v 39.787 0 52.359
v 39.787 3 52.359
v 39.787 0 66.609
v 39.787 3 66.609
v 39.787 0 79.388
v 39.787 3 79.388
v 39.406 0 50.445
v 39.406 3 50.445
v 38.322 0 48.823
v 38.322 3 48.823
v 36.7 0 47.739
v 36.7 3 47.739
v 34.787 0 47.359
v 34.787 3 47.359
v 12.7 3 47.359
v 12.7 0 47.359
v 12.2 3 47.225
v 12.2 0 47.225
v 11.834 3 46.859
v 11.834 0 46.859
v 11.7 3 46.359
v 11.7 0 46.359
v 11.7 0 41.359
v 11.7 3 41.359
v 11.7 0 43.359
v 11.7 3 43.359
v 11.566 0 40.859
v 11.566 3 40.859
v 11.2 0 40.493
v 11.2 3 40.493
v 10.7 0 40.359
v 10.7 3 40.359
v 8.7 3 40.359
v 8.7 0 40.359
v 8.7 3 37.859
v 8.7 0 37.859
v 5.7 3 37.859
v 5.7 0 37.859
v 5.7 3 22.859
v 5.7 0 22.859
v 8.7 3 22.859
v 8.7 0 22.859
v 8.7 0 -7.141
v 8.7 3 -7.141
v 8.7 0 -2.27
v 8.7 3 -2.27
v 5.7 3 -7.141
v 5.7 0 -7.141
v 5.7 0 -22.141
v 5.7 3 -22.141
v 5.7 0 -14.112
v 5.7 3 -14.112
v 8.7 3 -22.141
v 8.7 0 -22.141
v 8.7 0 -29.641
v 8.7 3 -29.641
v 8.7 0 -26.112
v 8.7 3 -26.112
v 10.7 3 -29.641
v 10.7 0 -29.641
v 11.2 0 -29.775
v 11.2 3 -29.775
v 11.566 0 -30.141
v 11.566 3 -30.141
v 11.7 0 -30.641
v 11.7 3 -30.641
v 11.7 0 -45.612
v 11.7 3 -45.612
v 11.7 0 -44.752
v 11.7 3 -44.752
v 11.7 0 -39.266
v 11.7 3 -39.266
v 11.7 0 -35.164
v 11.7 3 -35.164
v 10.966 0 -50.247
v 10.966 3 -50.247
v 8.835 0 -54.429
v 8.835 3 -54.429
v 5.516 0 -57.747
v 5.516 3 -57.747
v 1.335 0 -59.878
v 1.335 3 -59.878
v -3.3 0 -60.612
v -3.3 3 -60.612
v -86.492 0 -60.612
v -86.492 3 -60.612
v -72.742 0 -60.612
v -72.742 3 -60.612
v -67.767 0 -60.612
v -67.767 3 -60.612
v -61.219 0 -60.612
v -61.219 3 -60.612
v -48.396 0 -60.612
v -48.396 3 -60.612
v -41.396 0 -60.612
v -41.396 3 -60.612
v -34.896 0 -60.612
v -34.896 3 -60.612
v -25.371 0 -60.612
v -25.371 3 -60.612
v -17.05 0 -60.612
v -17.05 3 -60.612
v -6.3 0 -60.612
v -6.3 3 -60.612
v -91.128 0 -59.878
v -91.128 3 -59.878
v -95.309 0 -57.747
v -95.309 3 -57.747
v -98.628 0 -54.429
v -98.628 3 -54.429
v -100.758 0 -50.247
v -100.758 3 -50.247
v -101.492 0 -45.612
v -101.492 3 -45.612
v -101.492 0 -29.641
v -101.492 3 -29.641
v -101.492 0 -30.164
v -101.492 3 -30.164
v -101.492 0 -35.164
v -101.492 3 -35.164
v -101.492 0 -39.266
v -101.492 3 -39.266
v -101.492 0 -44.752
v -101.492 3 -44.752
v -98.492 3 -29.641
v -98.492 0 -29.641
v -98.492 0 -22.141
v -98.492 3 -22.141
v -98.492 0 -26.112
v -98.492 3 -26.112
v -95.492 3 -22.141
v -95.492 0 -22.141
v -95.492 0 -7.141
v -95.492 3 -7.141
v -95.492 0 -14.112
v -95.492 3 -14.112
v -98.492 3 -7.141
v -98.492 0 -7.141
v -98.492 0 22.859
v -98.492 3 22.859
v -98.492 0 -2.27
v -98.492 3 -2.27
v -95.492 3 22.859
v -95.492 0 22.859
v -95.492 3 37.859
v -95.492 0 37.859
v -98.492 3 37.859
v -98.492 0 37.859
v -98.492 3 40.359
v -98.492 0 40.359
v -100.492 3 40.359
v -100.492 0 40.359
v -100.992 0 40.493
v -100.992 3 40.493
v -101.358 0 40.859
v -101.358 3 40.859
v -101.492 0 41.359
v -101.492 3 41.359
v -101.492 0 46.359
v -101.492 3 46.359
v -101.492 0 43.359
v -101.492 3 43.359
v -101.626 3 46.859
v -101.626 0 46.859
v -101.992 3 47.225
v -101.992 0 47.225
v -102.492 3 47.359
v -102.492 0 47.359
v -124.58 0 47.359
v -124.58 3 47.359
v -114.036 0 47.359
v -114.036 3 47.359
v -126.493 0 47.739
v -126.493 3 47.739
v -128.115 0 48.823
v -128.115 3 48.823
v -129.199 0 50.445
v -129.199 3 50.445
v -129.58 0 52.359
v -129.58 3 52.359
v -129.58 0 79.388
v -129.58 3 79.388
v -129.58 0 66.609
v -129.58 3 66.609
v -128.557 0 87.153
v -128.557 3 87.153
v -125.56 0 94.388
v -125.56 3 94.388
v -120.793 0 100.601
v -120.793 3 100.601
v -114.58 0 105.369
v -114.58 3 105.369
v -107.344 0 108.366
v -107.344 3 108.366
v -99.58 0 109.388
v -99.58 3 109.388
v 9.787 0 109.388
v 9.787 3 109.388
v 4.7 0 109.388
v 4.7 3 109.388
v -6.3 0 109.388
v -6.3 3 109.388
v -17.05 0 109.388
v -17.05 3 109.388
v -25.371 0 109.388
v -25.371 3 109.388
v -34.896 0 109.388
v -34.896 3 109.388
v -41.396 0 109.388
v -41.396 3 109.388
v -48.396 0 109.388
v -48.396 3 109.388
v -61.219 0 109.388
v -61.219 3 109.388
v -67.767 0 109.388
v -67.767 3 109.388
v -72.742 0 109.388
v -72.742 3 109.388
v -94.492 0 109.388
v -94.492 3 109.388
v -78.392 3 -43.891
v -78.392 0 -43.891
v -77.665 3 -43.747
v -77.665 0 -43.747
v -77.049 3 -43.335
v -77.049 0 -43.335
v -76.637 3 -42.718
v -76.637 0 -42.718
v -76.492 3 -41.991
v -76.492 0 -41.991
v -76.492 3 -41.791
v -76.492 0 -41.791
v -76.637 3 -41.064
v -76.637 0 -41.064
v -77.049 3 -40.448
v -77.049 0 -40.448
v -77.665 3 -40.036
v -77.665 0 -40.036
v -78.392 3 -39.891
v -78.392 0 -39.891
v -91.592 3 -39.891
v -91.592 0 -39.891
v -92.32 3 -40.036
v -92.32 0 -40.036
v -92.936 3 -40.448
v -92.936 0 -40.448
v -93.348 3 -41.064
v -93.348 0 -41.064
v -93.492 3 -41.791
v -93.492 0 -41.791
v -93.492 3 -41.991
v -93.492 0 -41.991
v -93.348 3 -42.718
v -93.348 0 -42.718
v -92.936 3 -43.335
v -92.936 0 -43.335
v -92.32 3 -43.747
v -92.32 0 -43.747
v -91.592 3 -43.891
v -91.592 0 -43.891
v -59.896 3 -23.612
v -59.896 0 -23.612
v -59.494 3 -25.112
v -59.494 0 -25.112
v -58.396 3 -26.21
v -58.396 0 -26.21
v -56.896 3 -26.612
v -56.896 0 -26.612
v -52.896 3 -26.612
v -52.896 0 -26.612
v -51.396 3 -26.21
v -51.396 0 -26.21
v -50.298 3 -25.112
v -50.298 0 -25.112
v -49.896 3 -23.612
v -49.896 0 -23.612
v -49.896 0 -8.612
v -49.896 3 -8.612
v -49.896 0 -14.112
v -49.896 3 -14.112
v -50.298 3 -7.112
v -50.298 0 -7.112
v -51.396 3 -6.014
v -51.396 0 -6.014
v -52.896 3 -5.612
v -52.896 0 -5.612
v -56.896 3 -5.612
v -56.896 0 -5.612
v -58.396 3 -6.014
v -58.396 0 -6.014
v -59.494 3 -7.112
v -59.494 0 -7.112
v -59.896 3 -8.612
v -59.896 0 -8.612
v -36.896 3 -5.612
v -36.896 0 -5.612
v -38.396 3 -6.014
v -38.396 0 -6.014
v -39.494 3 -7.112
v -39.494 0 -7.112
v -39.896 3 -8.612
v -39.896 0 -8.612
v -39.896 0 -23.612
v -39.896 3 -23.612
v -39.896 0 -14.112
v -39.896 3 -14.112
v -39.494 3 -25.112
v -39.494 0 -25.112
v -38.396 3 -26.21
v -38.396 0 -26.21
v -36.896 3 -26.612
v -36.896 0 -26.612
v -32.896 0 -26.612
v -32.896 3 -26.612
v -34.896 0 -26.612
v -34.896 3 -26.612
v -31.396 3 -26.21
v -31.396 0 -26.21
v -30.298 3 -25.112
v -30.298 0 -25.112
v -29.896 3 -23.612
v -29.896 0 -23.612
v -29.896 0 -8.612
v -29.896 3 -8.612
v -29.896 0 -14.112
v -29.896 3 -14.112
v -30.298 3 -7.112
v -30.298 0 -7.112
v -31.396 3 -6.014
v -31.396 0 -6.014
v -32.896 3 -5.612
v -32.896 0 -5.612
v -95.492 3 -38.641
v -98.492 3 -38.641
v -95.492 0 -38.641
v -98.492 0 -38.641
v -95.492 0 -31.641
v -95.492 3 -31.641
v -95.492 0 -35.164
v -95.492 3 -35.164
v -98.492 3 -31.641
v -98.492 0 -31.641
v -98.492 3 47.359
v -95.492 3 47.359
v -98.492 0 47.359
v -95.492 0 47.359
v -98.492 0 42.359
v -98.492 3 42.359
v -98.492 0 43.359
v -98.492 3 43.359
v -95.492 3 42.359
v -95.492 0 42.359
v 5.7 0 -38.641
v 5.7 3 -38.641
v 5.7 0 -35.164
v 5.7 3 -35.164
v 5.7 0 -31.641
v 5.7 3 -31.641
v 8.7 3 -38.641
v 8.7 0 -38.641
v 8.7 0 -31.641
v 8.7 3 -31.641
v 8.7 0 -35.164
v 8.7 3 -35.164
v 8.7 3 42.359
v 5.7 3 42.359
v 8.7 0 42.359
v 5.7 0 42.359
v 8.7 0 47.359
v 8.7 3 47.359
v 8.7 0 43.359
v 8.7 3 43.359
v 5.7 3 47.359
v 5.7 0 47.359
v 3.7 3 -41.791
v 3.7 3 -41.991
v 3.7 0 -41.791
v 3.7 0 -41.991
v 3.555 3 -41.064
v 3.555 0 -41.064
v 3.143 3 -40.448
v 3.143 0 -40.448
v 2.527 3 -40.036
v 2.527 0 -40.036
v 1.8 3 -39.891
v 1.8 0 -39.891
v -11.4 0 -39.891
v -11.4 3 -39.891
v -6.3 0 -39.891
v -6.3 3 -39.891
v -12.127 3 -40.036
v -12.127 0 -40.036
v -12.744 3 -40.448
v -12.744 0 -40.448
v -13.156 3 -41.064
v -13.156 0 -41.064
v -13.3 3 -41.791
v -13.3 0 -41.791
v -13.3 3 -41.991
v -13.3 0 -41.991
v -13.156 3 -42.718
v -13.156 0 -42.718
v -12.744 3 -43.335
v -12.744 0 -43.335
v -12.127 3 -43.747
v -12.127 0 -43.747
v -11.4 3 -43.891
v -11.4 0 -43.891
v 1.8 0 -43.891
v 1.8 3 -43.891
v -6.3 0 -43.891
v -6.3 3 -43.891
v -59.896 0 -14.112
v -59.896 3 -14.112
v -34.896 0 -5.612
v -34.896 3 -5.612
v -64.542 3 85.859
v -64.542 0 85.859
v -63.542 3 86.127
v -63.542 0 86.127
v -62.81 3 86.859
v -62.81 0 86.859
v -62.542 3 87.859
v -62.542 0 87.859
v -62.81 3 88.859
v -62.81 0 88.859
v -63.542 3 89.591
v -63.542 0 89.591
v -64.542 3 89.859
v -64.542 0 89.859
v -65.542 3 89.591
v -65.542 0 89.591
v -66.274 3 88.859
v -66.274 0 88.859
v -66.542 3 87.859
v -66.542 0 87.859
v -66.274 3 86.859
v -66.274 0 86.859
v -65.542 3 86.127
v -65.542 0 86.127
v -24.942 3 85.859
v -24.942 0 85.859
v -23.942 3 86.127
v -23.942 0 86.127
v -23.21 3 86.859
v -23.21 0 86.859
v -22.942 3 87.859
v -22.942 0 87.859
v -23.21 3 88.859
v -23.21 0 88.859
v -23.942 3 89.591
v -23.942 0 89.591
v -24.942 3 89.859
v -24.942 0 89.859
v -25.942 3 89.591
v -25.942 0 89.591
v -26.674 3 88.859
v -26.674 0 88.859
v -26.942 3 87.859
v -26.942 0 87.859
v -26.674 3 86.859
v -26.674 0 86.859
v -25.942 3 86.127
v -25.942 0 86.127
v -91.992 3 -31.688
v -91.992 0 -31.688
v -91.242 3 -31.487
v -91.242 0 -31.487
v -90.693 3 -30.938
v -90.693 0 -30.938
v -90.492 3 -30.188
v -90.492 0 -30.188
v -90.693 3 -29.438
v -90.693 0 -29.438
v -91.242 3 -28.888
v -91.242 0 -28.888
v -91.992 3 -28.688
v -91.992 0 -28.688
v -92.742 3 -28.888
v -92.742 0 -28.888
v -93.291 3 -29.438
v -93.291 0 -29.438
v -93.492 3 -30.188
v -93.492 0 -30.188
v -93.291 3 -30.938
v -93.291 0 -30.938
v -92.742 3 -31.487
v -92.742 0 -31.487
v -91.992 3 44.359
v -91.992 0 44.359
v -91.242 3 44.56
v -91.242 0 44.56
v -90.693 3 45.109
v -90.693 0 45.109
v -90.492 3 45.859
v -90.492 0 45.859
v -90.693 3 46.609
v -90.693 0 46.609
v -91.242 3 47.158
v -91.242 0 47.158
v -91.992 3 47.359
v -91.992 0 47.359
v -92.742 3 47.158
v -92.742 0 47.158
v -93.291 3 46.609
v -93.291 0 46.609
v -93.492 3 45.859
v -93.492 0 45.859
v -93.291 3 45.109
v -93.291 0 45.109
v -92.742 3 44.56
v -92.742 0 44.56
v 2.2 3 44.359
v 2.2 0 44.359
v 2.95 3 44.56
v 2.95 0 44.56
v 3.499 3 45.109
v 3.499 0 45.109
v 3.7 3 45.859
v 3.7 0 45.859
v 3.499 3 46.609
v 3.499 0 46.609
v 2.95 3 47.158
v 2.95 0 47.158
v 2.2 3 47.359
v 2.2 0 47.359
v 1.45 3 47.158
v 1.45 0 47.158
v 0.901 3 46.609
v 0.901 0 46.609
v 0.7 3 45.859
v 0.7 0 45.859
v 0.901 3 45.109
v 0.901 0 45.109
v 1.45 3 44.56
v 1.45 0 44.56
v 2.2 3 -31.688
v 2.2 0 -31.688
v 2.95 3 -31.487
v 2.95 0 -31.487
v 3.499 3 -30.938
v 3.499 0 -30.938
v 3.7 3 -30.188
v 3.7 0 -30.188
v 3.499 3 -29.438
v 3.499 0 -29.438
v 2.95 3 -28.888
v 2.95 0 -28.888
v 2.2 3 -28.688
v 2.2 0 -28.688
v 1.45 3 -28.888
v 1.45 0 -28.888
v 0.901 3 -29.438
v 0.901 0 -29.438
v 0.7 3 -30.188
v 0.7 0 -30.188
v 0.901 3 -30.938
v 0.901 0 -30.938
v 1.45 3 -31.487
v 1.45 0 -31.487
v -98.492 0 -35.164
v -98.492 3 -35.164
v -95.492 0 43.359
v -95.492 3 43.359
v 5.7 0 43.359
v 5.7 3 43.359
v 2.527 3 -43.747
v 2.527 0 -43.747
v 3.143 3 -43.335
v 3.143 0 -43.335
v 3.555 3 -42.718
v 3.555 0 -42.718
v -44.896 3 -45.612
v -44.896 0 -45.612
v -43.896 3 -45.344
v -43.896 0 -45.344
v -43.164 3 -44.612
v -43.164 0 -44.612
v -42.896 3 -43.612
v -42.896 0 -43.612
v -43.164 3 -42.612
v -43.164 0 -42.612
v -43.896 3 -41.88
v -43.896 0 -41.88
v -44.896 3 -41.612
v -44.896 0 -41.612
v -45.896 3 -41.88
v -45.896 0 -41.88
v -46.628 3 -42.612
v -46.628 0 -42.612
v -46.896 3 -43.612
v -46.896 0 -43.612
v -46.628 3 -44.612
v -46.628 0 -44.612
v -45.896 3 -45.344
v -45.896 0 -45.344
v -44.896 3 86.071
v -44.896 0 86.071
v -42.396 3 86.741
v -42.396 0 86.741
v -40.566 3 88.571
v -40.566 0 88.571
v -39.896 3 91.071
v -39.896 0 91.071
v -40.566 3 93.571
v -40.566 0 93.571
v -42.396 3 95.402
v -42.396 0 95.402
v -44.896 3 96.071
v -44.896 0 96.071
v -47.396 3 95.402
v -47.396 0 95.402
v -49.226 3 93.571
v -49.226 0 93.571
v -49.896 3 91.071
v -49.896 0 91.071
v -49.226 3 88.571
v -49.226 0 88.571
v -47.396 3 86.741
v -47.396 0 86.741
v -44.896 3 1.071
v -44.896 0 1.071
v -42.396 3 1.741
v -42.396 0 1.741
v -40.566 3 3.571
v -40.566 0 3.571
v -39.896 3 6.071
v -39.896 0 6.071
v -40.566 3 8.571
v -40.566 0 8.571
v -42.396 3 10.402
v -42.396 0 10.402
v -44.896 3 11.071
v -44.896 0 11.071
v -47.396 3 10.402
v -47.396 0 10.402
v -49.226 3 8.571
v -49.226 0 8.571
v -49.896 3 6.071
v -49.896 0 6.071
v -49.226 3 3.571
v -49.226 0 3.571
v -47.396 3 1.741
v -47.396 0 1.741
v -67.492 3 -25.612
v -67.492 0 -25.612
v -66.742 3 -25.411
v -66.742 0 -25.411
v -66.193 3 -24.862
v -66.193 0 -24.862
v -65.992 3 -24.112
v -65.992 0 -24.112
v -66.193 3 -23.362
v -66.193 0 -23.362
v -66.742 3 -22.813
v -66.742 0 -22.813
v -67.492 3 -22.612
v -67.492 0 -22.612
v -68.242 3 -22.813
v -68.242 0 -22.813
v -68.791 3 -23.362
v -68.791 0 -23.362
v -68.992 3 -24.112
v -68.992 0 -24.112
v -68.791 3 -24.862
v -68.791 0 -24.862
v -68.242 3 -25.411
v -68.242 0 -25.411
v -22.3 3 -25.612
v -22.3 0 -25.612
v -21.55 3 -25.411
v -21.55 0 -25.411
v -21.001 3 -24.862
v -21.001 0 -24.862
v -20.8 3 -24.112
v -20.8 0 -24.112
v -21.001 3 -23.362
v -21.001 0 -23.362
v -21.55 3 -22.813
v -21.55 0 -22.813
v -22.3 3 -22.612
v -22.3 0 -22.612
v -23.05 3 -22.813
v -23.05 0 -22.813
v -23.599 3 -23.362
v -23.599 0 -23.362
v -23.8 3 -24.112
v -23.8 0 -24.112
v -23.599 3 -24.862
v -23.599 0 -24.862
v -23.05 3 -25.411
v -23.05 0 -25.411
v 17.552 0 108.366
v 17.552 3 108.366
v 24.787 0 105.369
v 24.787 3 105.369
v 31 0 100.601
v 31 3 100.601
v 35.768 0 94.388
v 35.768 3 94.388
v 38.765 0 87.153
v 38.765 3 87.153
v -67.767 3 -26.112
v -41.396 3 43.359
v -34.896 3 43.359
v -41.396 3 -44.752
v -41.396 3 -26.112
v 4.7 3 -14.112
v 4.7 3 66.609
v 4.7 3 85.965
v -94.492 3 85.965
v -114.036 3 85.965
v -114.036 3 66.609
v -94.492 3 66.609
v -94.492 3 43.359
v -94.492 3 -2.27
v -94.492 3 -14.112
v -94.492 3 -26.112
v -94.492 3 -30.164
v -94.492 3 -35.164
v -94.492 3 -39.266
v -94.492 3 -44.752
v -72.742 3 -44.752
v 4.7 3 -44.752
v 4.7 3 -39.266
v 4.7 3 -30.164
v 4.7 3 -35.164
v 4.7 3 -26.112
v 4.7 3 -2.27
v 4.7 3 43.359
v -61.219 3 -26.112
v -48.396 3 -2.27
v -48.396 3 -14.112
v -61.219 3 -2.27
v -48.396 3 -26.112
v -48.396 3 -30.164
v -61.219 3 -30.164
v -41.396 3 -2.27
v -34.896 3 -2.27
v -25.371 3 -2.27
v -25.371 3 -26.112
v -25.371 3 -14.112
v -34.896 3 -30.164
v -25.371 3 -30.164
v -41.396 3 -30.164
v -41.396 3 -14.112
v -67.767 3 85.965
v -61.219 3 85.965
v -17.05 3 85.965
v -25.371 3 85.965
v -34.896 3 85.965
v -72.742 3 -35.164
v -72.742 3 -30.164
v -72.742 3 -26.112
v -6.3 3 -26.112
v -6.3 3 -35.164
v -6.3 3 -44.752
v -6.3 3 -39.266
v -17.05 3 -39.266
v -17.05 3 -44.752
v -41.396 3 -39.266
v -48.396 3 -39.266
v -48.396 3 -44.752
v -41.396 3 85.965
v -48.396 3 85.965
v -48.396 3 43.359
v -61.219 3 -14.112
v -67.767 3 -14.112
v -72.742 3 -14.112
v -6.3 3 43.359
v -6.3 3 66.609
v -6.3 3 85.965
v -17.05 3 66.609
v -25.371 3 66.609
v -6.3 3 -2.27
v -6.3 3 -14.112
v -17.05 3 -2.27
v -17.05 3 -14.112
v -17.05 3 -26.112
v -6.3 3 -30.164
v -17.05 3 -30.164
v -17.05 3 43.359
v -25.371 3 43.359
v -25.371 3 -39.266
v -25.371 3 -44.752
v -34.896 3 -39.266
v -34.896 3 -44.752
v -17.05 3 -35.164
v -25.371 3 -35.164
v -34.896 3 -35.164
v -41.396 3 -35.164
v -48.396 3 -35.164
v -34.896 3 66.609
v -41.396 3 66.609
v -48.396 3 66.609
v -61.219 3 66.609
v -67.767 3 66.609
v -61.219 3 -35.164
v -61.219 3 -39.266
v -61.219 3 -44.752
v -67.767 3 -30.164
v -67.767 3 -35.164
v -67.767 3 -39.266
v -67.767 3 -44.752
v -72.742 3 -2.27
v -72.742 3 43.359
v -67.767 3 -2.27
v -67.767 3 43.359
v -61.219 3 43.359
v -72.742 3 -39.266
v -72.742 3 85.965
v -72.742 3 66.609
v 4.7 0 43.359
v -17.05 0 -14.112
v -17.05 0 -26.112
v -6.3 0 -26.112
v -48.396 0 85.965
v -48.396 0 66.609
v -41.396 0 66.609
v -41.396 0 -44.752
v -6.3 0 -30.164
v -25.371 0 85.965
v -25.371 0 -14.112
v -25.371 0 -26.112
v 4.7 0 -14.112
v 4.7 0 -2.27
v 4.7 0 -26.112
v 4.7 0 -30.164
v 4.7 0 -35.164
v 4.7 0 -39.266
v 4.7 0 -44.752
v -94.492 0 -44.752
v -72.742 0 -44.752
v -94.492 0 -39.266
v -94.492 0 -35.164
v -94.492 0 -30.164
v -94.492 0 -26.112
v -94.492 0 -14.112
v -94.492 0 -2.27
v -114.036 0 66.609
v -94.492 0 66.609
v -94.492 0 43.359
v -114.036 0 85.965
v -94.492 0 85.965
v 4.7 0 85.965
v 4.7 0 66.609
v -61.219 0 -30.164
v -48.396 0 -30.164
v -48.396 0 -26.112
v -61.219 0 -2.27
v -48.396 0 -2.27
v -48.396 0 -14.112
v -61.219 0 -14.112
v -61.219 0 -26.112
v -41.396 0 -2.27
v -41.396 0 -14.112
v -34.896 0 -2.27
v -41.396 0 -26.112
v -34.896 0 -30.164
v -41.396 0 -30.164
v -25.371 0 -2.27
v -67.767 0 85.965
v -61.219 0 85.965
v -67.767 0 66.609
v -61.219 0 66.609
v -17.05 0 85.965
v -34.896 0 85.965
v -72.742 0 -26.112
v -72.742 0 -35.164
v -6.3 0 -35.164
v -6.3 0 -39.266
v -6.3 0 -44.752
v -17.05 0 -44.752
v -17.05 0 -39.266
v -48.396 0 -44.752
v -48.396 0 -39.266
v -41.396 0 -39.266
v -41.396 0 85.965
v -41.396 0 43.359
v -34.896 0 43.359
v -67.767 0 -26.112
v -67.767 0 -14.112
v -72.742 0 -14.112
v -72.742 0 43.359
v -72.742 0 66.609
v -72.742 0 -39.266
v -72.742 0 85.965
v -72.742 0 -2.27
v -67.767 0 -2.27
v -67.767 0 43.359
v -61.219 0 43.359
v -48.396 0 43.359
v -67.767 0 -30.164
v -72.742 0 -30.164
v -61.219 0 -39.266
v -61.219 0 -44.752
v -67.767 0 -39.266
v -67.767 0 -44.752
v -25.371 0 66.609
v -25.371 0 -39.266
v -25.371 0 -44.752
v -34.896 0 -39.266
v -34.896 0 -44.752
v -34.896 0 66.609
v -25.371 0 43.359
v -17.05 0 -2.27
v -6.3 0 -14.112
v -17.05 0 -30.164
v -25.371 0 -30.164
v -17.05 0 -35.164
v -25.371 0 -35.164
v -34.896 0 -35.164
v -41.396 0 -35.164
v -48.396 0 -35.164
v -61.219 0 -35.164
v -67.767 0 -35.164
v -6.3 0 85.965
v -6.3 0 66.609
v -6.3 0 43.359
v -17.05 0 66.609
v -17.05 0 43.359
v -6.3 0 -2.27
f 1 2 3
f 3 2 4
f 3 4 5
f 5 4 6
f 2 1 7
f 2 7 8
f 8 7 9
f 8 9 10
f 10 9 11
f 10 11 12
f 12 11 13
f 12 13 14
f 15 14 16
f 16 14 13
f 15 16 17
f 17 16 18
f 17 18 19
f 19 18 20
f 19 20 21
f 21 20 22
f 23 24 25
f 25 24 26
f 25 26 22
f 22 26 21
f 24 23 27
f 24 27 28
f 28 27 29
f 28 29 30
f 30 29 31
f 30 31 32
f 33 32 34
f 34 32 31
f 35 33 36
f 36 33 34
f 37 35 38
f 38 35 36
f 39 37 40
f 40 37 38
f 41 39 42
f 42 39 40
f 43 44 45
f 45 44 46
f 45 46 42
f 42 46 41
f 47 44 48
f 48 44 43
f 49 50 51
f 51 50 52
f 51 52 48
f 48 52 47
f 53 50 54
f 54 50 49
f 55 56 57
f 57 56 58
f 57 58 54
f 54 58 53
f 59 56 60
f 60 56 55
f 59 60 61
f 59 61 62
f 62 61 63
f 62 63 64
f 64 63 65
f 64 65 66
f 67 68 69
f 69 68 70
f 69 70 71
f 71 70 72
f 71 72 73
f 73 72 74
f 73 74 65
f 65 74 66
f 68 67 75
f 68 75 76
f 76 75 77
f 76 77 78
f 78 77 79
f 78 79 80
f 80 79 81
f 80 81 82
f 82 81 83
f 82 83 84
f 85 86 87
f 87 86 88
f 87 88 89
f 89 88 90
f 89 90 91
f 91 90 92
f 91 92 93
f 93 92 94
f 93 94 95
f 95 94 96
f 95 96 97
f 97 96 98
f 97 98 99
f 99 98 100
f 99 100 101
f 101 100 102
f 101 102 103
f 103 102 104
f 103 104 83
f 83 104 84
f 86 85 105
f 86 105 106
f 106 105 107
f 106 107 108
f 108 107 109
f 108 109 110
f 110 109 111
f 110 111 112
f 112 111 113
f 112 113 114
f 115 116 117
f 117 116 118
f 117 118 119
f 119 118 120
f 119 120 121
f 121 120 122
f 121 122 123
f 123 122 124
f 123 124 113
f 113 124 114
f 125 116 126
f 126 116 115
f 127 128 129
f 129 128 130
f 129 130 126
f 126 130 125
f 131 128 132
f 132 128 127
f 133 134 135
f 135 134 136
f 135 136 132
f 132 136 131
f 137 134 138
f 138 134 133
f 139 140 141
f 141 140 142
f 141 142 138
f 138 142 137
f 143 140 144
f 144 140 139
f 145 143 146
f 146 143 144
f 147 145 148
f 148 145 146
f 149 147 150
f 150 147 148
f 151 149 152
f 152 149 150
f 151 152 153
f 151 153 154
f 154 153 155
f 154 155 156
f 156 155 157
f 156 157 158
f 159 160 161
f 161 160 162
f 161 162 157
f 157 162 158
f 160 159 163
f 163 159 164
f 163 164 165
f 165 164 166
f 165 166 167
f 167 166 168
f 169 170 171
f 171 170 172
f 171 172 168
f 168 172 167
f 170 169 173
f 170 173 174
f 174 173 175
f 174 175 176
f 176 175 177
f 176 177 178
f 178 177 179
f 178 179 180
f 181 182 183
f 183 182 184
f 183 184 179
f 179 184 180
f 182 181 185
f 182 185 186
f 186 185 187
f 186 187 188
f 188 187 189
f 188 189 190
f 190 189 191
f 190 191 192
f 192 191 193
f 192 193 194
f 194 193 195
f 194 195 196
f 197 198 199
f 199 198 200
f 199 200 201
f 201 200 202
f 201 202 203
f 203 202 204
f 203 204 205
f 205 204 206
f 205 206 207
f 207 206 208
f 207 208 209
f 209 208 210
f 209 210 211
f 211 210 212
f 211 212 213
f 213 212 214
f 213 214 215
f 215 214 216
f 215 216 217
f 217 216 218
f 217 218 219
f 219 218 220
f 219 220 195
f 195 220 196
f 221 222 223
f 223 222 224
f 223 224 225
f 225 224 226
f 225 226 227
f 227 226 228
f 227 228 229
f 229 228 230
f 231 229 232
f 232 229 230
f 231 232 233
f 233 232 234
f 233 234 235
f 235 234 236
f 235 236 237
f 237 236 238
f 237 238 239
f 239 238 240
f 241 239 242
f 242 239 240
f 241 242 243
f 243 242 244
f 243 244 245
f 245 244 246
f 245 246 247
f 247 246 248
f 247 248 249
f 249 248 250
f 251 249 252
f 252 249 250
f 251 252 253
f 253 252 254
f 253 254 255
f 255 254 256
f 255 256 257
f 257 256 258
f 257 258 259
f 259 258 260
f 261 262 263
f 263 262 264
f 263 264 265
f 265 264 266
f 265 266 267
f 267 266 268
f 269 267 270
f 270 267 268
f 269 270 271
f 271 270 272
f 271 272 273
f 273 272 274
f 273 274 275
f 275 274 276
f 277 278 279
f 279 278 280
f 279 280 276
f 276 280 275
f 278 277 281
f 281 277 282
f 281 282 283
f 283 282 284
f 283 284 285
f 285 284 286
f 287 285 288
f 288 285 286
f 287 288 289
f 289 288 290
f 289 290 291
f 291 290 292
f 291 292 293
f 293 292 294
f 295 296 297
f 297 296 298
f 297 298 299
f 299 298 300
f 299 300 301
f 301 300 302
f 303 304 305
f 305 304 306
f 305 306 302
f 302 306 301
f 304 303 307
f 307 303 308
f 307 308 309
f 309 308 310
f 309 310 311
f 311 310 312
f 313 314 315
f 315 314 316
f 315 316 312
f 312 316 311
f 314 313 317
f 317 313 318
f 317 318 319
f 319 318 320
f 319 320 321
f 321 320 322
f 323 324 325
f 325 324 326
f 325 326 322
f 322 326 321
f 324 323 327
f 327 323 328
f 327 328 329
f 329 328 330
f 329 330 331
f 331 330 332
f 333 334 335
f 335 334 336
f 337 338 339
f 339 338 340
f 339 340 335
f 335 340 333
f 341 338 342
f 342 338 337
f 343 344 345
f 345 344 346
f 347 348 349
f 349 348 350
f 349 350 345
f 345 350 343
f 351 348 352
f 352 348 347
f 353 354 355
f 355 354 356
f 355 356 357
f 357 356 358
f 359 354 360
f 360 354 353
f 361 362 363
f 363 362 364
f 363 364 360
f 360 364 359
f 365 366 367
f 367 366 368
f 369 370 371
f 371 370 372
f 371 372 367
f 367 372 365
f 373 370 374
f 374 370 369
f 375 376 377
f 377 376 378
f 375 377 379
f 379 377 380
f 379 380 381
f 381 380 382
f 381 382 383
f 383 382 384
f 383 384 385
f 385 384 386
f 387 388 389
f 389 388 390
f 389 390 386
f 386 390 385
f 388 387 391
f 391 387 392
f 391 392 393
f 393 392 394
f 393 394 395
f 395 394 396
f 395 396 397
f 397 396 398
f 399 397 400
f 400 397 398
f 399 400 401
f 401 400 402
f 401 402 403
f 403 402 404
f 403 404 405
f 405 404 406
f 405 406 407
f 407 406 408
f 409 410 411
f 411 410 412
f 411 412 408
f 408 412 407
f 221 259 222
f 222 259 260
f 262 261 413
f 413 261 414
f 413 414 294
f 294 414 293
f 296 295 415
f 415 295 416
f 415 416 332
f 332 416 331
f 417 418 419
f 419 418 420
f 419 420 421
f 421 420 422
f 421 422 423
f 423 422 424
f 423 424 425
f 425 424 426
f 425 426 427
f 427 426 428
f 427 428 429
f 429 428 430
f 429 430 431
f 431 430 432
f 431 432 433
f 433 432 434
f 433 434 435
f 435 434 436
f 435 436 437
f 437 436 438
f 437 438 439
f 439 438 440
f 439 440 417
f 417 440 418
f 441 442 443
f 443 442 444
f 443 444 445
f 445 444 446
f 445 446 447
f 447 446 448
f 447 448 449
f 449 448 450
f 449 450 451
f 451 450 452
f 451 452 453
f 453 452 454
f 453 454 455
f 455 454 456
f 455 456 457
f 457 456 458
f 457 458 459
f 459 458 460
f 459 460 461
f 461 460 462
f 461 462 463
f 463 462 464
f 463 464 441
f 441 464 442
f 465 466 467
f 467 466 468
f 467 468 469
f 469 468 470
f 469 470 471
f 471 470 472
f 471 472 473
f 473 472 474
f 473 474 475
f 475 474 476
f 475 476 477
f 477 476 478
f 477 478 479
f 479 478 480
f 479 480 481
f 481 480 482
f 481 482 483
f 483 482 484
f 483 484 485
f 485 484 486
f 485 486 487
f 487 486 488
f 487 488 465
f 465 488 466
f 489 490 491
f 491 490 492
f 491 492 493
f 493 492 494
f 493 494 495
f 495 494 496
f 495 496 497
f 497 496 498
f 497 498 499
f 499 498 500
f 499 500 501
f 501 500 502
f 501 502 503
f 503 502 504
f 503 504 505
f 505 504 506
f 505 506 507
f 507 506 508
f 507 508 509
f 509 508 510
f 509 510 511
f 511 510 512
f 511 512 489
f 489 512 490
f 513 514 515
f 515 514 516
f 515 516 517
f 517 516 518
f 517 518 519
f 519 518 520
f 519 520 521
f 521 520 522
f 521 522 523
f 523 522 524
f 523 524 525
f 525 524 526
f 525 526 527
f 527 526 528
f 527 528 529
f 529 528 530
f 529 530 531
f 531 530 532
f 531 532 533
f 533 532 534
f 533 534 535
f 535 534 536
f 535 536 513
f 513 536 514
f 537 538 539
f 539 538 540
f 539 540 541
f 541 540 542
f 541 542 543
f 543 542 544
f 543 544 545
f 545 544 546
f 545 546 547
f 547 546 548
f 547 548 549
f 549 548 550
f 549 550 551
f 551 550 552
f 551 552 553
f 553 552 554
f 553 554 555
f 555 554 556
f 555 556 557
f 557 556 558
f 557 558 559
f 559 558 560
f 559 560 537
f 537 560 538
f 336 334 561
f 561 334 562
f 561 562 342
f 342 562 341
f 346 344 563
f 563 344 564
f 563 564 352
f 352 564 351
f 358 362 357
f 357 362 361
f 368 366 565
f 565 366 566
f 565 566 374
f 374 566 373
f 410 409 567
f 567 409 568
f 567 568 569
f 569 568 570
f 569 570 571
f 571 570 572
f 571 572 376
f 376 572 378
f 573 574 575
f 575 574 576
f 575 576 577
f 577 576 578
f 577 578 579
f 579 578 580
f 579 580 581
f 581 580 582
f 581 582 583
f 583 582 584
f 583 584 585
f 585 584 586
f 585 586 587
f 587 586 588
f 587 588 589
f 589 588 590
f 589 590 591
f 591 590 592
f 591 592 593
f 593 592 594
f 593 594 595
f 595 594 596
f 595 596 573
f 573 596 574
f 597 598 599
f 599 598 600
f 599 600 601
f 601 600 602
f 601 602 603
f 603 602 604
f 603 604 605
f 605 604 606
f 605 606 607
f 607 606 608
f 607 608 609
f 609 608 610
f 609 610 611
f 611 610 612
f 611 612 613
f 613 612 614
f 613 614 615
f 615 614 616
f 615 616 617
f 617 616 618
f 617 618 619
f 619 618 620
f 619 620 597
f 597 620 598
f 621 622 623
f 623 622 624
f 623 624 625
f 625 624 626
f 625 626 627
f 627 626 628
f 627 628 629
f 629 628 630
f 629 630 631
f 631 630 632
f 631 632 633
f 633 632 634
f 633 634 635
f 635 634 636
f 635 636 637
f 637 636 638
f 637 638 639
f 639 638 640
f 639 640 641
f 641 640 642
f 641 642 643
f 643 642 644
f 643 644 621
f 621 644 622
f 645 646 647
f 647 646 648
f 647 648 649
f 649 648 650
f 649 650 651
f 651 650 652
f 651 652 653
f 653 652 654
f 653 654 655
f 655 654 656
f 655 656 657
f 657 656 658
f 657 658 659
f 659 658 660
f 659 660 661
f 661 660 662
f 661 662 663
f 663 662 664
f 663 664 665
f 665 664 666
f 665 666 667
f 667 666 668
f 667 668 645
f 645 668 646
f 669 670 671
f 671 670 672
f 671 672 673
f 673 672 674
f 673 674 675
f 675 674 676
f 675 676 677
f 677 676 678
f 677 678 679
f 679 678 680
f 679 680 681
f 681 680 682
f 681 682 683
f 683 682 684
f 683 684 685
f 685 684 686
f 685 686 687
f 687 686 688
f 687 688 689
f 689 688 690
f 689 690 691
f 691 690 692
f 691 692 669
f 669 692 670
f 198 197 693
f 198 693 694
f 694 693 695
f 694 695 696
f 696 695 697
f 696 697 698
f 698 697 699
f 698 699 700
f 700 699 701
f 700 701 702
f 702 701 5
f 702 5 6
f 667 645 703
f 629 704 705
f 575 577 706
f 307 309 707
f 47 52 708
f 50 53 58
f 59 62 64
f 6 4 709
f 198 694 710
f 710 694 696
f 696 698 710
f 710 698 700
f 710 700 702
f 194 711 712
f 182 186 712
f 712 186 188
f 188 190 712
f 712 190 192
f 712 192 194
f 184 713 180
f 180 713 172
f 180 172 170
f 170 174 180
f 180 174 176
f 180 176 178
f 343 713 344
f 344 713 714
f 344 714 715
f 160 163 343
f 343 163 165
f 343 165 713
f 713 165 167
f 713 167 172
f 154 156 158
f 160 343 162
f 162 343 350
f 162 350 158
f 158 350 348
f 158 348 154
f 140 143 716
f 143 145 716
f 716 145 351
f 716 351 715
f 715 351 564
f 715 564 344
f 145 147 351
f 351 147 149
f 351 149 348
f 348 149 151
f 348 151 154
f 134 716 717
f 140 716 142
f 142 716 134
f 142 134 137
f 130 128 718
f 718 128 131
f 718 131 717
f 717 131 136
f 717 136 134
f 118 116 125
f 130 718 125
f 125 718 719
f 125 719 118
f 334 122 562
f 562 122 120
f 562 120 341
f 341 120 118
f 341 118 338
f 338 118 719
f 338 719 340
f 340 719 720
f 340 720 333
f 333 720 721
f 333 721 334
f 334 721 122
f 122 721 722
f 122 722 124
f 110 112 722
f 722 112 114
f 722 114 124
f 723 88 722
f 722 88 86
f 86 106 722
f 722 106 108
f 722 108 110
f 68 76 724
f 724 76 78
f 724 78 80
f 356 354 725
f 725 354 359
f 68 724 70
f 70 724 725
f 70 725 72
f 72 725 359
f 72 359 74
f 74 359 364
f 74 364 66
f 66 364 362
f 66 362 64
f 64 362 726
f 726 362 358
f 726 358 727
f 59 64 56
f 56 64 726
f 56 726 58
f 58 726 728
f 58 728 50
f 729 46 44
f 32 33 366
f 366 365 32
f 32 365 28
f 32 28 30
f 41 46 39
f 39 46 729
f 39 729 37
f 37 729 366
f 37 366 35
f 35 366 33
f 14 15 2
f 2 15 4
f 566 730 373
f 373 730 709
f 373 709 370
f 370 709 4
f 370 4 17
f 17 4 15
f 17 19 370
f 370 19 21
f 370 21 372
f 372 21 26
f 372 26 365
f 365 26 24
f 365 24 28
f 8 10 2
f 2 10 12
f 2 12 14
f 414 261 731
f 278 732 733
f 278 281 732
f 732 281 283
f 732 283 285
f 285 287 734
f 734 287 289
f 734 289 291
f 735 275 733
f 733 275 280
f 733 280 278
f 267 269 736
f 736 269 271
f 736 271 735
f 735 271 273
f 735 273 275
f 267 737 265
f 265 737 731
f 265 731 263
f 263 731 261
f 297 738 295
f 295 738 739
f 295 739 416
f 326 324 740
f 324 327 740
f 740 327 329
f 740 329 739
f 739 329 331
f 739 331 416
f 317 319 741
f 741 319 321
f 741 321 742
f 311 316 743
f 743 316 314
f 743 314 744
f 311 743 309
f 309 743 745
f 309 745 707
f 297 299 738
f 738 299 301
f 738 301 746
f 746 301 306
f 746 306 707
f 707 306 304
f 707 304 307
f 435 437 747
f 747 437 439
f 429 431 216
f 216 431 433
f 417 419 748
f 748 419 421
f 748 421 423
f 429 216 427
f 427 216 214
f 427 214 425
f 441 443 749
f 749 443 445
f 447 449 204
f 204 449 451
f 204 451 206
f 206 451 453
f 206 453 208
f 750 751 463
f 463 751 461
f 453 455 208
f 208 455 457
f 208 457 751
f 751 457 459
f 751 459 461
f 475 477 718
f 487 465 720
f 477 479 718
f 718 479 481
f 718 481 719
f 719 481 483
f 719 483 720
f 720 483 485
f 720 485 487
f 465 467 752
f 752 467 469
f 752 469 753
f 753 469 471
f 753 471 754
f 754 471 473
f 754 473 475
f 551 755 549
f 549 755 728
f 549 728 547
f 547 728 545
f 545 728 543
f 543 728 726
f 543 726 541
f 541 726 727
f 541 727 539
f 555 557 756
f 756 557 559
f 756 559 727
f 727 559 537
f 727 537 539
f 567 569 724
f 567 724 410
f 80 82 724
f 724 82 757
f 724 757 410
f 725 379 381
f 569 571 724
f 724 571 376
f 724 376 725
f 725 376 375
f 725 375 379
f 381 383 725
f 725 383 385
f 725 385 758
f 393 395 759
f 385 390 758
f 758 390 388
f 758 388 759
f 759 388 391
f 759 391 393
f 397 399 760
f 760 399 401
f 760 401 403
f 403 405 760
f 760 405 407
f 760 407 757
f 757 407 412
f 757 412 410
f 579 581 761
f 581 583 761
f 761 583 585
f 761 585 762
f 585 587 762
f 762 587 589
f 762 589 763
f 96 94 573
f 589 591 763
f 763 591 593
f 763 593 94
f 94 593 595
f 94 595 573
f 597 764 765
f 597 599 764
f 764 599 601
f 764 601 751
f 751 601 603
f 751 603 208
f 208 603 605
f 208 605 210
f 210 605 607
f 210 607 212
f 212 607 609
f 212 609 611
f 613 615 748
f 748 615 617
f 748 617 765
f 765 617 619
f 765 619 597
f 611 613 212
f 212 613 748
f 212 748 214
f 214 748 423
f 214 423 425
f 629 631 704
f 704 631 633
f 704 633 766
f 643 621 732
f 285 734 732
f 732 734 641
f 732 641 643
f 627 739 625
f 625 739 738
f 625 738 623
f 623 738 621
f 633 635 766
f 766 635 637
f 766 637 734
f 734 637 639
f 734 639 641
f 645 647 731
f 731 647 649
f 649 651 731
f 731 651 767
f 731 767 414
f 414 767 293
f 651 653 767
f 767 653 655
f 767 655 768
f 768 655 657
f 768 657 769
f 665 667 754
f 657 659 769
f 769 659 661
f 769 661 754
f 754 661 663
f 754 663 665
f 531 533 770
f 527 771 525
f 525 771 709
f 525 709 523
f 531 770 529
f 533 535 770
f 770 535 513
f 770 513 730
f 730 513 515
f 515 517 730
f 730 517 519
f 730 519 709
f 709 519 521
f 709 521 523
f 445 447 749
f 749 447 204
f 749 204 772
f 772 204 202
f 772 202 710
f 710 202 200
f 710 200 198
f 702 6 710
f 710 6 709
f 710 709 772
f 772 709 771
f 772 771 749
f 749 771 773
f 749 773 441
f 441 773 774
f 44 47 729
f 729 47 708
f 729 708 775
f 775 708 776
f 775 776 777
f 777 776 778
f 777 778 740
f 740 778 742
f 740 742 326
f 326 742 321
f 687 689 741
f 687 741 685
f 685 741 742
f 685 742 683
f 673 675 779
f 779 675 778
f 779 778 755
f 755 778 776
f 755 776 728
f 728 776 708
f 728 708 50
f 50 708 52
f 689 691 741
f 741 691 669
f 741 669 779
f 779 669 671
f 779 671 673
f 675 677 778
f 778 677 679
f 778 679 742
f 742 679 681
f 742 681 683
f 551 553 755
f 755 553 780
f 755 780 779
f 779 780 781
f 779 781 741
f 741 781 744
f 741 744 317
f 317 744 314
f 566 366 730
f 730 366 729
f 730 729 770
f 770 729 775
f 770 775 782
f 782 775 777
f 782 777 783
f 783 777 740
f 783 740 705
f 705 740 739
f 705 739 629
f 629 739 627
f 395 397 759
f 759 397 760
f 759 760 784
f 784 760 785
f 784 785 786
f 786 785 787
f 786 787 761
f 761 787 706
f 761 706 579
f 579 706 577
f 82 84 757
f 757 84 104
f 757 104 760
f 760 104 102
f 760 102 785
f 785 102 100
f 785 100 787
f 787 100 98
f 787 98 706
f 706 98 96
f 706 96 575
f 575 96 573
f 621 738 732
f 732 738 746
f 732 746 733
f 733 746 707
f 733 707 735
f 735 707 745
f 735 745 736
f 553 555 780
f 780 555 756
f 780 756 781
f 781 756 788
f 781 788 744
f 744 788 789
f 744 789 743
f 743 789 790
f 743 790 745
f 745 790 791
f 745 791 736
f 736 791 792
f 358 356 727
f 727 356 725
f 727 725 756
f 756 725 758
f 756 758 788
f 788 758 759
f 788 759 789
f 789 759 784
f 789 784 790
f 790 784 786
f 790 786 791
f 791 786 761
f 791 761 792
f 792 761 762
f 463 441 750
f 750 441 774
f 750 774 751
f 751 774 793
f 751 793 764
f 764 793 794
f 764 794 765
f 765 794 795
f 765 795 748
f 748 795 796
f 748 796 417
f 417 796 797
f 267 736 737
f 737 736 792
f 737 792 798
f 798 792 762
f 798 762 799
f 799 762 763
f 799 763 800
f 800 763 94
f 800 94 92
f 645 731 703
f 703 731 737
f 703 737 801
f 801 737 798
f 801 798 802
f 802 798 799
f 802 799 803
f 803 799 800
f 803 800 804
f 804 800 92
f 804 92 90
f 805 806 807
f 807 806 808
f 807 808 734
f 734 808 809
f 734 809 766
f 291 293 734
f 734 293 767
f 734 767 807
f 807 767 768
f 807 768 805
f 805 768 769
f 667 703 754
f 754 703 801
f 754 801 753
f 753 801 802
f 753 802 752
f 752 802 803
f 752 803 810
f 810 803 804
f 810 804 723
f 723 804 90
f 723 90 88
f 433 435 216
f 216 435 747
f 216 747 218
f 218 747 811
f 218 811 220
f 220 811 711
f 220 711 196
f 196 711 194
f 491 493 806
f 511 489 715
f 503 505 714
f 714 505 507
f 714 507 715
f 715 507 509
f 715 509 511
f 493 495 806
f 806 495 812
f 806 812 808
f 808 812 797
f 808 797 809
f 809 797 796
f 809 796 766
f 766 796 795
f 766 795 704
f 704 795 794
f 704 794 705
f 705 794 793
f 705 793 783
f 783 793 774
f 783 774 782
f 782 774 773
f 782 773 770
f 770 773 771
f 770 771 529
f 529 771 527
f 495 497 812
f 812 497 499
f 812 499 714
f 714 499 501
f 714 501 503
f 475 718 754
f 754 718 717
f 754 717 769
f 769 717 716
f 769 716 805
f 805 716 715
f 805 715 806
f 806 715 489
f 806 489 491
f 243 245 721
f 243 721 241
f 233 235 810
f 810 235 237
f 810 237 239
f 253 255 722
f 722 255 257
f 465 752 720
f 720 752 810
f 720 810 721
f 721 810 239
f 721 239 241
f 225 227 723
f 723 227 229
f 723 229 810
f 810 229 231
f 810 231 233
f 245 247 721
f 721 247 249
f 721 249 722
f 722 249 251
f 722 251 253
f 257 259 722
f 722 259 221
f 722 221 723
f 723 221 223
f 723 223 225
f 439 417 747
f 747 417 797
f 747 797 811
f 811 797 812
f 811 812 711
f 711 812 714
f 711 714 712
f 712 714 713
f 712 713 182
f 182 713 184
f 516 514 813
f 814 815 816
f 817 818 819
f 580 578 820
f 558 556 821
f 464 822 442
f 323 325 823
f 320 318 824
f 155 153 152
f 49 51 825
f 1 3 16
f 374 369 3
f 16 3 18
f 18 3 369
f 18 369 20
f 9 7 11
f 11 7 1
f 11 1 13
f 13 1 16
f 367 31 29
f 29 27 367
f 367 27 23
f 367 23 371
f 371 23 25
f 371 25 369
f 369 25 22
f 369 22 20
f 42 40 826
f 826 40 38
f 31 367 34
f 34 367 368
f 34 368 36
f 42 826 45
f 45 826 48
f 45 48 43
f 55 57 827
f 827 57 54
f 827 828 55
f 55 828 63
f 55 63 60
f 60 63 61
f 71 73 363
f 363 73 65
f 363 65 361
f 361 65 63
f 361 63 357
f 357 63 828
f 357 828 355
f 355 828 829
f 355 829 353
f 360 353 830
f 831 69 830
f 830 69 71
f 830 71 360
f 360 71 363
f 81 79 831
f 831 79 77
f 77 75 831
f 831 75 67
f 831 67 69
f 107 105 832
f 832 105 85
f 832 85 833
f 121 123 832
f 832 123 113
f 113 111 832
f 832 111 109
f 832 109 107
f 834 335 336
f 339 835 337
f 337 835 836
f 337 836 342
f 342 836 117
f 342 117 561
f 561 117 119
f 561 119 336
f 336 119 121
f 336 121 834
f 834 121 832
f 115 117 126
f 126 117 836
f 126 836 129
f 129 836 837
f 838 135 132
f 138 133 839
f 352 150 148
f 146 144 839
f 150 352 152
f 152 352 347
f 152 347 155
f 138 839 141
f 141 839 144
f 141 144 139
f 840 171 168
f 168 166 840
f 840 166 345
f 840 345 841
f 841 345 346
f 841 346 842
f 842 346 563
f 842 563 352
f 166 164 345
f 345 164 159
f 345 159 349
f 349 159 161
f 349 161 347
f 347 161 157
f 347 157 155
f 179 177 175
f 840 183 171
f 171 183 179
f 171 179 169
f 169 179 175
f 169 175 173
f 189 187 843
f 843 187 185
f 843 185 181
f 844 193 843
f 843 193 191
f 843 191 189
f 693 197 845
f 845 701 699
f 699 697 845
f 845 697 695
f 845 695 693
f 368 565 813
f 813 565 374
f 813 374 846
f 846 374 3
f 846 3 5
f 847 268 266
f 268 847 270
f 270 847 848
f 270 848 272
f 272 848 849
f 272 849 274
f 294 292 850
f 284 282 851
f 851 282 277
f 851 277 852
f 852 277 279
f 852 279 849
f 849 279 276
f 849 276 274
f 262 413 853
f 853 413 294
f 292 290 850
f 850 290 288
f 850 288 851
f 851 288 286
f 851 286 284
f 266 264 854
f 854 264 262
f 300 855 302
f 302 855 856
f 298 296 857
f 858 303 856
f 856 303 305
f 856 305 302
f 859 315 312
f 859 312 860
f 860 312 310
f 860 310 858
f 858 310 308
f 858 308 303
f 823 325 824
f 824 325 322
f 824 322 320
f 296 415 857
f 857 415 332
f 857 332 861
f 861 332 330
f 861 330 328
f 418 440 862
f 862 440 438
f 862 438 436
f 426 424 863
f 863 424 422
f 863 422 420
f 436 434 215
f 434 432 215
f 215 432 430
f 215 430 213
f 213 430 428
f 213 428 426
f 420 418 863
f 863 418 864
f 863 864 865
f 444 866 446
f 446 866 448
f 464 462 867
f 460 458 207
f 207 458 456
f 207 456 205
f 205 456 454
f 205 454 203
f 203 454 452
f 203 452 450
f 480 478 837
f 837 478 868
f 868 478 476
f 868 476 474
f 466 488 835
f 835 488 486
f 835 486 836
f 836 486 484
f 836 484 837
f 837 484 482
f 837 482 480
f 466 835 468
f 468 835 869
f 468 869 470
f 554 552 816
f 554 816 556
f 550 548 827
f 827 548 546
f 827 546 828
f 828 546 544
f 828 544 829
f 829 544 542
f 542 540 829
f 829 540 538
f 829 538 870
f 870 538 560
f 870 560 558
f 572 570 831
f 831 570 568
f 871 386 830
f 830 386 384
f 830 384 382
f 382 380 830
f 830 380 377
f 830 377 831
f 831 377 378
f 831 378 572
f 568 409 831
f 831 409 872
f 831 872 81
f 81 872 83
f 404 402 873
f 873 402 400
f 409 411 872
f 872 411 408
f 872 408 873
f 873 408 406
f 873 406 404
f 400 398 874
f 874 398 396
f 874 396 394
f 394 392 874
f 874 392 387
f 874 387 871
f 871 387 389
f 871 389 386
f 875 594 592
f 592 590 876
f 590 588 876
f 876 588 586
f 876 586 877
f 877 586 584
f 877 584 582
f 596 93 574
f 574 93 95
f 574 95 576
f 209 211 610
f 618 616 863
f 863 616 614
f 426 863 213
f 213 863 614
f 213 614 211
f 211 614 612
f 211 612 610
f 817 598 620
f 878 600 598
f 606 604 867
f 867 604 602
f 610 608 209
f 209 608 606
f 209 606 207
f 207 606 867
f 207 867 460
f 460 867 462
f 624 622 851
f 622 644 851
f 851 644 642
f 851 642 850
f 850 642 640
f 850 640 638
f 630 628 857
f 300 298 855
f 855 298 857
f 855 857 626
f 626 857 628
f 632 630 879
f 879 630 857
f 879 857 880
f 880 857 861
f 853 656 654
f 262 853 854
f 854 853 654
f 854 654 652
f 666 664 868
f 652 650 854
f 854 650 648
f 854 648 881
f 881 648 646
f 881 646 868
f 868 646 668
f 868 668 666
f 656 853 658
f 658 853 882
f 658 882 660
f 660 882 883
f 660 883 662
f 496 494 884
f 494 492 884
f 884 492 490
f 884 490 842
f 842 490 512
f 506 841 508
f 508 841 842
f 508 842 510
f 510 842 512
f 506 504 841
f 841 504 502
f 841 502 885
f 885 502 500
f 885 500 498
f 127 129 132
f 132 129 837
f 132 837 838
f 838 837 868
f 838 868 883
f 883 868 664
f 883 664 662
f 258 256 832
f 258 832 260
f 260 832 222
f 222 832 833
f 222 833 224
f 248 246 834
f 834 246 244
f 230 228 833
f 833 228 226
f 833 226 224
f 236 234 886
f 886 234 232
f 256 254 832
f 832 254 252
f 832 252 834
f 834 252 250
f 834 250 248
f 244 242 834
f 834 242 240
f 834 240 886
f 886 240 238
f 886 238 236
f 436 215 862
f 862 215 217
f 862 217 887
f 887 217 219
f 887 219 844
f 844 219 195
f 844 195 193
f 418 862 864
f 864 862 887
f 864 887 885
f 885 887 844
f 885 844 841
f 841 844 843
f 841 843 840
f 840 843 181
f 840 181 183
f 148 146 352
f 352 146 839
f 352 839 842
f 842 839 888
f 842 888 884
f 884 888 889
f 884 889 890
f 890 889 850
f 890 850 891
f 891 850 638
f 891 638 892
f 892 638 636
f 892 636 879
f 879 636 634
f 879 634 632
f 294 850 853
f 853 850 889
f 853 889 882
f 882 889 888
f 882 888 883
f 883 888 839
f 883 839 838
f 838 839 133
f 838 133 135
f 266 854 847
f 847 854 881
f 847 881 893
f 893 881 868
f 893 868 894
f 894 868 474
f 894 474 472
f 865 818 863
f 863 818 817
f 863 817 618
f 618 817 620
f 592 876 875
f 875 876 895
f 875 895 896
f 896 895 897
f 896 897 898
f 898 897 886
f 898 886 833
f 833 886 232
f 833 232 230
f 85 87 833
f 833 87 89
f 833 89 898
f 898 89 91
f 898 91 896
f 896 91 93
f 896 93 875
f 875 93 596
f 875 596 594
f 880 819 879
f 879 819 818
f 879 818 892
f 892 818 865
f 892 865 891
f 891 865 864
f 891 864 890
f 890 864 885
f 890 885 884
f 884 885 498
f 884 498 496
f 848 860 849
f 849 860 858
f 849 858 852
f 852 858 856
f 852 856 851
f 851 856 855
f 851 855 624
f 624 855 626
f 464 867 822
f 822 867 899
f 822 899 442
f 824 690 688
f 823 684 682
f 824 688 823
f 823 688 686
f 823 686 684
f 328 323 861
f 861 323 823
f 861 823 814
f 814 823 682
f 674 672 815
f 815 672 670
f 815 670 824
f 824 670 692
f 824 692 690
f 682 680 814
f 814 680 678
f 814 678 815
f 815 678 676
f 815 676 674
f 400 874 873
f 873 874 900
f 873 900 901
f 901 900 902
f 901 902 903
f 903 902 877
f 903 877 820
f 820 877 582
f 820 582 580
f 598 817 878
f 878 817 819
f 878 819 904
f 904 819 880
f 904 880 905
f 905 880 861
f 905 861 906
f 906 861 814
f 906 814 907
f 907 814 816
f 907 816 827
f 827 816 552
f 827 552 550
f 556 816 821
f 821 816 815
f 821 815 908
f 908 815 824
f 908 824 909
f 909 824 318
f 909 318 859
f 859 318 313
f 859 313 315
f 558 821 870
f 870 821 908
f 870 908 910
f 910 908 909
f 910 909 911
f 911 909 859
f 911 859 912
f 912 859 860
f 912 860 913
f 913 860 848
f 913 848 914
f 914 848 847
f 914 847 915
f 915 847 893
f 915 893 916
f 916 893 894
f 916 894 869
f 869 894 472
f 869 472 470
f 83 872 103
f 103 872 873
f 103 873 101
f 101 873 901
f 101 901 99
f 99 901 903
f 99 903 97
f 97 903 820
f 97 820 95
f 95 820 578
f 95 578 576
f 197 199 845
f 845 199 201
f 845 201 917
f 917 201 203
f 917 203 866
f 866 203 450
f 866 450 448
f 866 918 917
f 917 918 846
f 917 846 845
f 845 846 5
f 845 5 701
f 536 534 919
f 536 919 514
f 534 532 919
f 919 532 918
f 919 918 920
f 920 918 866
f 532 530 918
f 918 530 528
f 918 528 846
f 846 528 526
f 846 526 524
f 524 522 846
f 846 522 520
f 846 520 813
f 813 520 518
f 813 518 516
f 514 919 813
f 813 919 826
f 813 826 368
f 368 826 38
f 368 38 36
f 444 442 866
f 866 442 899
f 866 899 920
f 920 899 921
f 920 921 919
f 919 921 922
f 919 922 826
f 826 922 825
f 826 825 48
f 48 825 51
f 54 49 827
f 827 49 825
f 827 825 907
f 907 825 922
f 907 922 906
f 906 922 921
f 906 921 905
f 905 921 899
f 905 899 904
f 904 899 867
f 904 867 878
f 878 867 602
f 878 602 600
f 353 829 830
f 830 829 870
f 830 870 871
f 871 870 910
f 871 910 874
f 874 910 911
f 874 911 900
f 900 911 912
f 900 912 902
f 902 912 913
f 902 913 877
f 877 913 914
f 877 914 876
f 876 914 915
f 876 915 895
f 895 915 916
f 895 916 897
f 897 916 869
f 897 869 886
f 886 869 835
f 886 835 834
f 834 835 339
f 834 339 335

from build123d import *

# Parameters (mm, degrees)
SKETCH1_R           = 2
SKETCH1_R_2         = 1.5
SKETCH1_W           = 3
SKETCH1_H           = 5
SKETCH1_R_3         = 5
SKETCH1_H_2         = 7
BOSS_EXTRUDE1_DEPTH = 3


with BuildPart() as part:
    # Sketch1 → Boss-Extrude1 (new body)
    with BuildSketch(Plane(origin=(0, 0, 0), x_dir=(1, 0, 0), z_dir=(0, 1, 0))):
        with BuildLine():
            ThreePointArc((10.699698215, 29.641238244), (11.406804996, 29.934131463), (11.699698215, 30.641238244))
            Line((11.699698215, 30.641238244), (11.699698215, 38.128019164))
            Line((11.699698215, 38.128019164), (11.699698215, 45.611855364))
            ThreePointArc((11.699698215, 45.611855364), (7.306299933, 56.218457082), (-3.300301785, 60.611855364))
            Line((-3.300301785, 60.611855364), (-86.492412558, 60.611855364))
            ThreePointArc((-86.492412558, 60.611855364), (-97.099014275, 56.218457082), (-101.492412558, 45.611855364))
            Line((-101.492412558, 45.611855364), (-101.492412558, 38.128019164))
            Line((-101.492412558, 38.128019164), (-101.492412558, 29.641238244))
            Line((-101.492412558, 29.641238244), (-98.492412558, 29.641238244))
            Line((-98.492412558, 29.641238244), (-98.492412558, 22.141238244))
            Line((-98.492412558, 22.141238244), (-95.492412558, 22.141238244))
            Line((-95.492412558, 22.141238244), (-95.492412558, 7.141238244))
            Line((-95.492412558, 7.141238244), (-98.492412558, 7.141238244))
            Line((-98.492412558, 7.141238244), (-98.492412558, -22.858761756))
            Line((-98.492412558, -22.858761756), (-95.492412558, -22.858761756))
            Line((-95.492412558, -22.858761756), (-95.492412558, -37.858761756))
            Line((-95.492412558, -37.858761756), (-98.492412558, -37.858761756))
            Line((-98.492412558, -37.858761756), (-98.492412558, -40.358761756))
            Line((-98.492412558, -40.358761756), (-100.492412558, -40.358761756))
            ThreePointArc((-100.492412558, -40.358761756), (-101.199519339, -40.651654975), (-101.492412558, -41.358761756))
            Line((-101.492412558, -41.358761756), (-101.492412558, -46.358761756))
            ThreePointArc((-101.492412558, -46.358761756), (-101.785305776, -47.065868537), (-102.492412558, -47.358761756))
            Line((-102.492412558, -47.358761756), (-124.579684665, -47.358761756))
            ThreePointArc((-124.579684665, -47.358761756), (-128.115218571, -48.82322785), (-129.579684665, -52.358761756))
            Line((-129.579684665, -52.358761756), (-129.579684665, -79.388144636))
            ThreePointArc((-129.579684665, -79.388144636), (-120.7928881, -100.601348072), (-99.579684665, -109.388144636))
            Line((-99.579684665, -109.388144636), (9.786970322, -109.388144636))
            ThreePointArc((9.786970322, -109.388144636), (31.000173758, -100.601348072), (39.786970322, -79.388144636))
            Line((39.786970322, -79.388144636), (39.786970322, -52.358761756))
            ThreePointArc((39.786970322, -52.358761756), (38.322504228, -48.82322785), (34.786970322, -47.358761756))
            Line((34.786970322, -47.358761756), (12.699698215, -47.358761756))
            ThreePointArc((12.699698215, -47.358761756), (11.992591434, -47.065868537), (11.699698215, -46.358761756))
            Line((11.699698215, -46.358761756), (11.699698215, -41.358761756))
            ThreePointArc((11.699698215, -41.358761756), (11.406804997, -40.651654975), (10.699698215, -40.358761756))
            Line((10.699698215, -40.358761756), (8.699698215, -40.358761756))
            Line((8.699698215, -40.358761756), (8.699698215, -37.858761756))
            Line((8.699698215, -37.858761756), (5.699698215, -37.858761756))
            Line((5.699698215, -37.858761756), (5.699698215, -22.858761756))
            Line((5.699698215, -22.858761756), (8.699698215, -22.858761756))
            Line((8.699698215, -22.858761756), (8.699698215, 7.141238244))
            Line((8.699698215, 7.141238244), (5.699698215, 7.141238244))
            Line((5.699698215, 7.141238244), (5.699698215, 22.141238244))
            Line((5.699698215, 22.141238244), (8.699698215, 22.141238244))
            Line((8.699698215, 22.141238244), (8.699698215, 29.641238244))
            Line((8.699698215, 29.641238244), (10.699698215, 29.641238244))
        make_face()
        with Locations(Location((-64.542412558, -87.858761756, 0), (0, 0, 270))):
            Circle(SKETCH1_R, mode=Mode.SUBTRACT)
        with Locations(Location((-91.992412558, -45.858761756, 0), (0, 0, 270))):
            Circle(SKETCH1_R_2, mode=Mode.SUBTRACT)
        with Locations((-96.992412558, -44.858761756)):
            Rectangle(SKETCH1_W, SKETCH1_H, mode=Mode.SUBTRACT)
        with Locations(Location((-44.896357171, -91.07147213, 0), (0, 0, 270))):
            Circle(SKETCH1_R_3, mode=Mode.SUBTRACT)
        with Locations(Location((-24.942412558, -87.858761756, 0), (0, 0, 270))):
            Circle(SKETCH1_R, mode=Mode.SUBTRACT)
        with Locations(Location((2.199698215, -45.858761756, 0), (0, 0, 270))):
            Circle(SKETCH1_R_2, mode=Mode.SUBTRACT)
        with Locations((7.199698215, -44.858761756)):
            Rectangle(SKETCH1_W, SKETCH1_H, mode=Mode.SUBTRACT)
        with BuildLine():
            Line((-52.896357171, 5.611855364), (-56.896357171, 5.611855364))
            ThreePointArc((-56.896357171, 5.611855364), (-59.017677515, 6.49053502), (-59.896357171, 8.611855364))
            Line((-59.896357171, 8.611855364), (-59.896357171, 23.611855364))
            ThreePointArc((-59.896357171, 23.611855364), (-59.017677515, 25.733175707), (-56.896357171, 26.611855364))
            Line((-56.896357171, 26.611855364), (-52.896357171, 26.611855364))
            ThreePointArc((-52.896357171, 26.611855364), (-50.775036828, 25.733175707), (-49.896357171, 23.611855364))
            Line((-49.896357171, 23.611855364), (-49.896357171, 8.611855364))
            ThreePointArc((-49.896357171, 8.611855364), (-50.775036828, 6.49053502), (-52.896357171, 5.611855364))
        make_face(mode=Mode.SUBTRACT)
        with Locations(Location((-91.992412558, 30.187503495, 0), (0, 0, 270))):
            Circle(SKETCH1_R_2, mode=Mode.SUBTRACT)
        with Locations((-96.992412558, 35.141238244)):
            Rectangle(SKETCH1_W, SKETCH1_H_2, mode=Mode.SUBTRACT)
        with Locations(Location((-67.492412558, 24.11185536, 0), (0, 0, 270))):
            Circle(SKETCH1_R_2, mode=Mode.SUBTRACT)
        with BuildLine():
            Line((-78.392412558, 39.891238244), (-91.592412558, 39.891238244))
            ThreePointArc((-91.592412558, 39.891238244), (-92.935915442, 40.44773536), (-93.492412558, 41.791238244))
            Line((-93.492412558, 41.791238244), (-93.492412558, 41.991238244))
            ThreePointArc((-93.492412558, 41.991238244), (-92.935915442, 43.334741128), (-91.592412558, 43.891238244))
            Line((-91.592412558, 43.891238244), (-78.392412558, 43.891238244))
            ThreePointArc((-78.392412558, 43.891238244), (-77.048909673, 43.334741128), (-76.492412558, 41.991238244))
            Line((-76.492412558, 41.991238244), (-76.492412558, 41.791238244))
            ThreePointArc((-76.492412558, 41.791238244), (-77.048909673, 40.44773536), (-78.392412558, 39.891238244))
        make_face(mode=Mode.SUBTRACT)
        with Locations(Location((-44.896357171, -6.07147213, 0), (0, 0, 270))):
            Circle(SKETCH1_R_3, mode=Mode.SUBTRACT)
        with BuildLine():
            ThreePointArc((-32.896357171, 26.611855364), (-30.775036828, 25.733175707), (-29.896357171, 23.611855364))
            Line((-29.896357171, 23.611855364), (-29.896357171, 8.611855364))
            ThreePointArc((-29.896357171, 8.611855364), (-30.775036828, 6.49053502), (-32.896357171, 5.611855364))
            Line((-32.896357171, 5.611855364), (-36.896357171, 5.611855364))
            ThreePointArc((-36.896357171, 5.611855364), (-39.017677515, 6.49053502), (-39.896357171, 8.611855364))
            Line((-39.896357171, 8.611855364), (-39.896357171, 23.611855364))
            ThreePointArc((-39.896357171, 23.611855364), (-39.017677515, 25.733175707), (-36.896357171, 26.611855364))
            Line((-36.896357171, 26.611855364), (-32.896357171, 26.611855364))
        make_face(mode=Mode.SUBTRACT)
        with Locations(Location((-22.300301785, 24.11185536, 0), (0, 0, 270))):
            Circle(SKETCH1_R_2, mode=Mode.SUBTRACT)
        with Locations(Location((-44.896357171, 43.611855364, 0), (0, 0, 270))):
            Circle(SKETCH1_R, mode=Mode.SUBTRACT)
        with BuildLine():
            Line((3.699698215, 41.991238244), (3.699698215, 41.791238244))
            ThreePointArc((3.699698215, 41.791238244), (3.143201099, 40.44773536), (1.799698215, 39.891238244))
            Line((1.799698215, 39.891238244), (-11.400301785, 39.891238244))
            ThreePointArc((-11.400301785, 39.891238244), (-12.743804669, 40.44773536), (-13.300301785, 41.791238244))
            Line((-13.300301785, 41.791238244), (-13.300301785, 41.991238244))
            ThreePointArc((-13.300301785, 41.991238244), (-12.743804669, 43.334741128), (-11.400301785, 43.891238244))
            Line((-11.400301785, 43.891238244), (1.799698215, 43.891238244))
            ThreePointArc((1.799698215, 43.891238244), (3.143201099, 43.334741128), (3.699698215, 41.991238244))
        make_face(mode=Mode.SUBTRACT)
        with Locations(Location((2.199698215, 30.187503495, 0), (0, 0, 270))):
            Circle(SKETCH1_R_2, mode=Mode.SUBTRACT)
        with Locations((7.199698215, 35.141238244)):
            Rectangle(SKETCH1_W, SKETCH1_H_2, mode=Mode.SUBTRACT)
    extrude(amount=BOSS_EXTRUDE1_DEPTH)


solid = part.part
